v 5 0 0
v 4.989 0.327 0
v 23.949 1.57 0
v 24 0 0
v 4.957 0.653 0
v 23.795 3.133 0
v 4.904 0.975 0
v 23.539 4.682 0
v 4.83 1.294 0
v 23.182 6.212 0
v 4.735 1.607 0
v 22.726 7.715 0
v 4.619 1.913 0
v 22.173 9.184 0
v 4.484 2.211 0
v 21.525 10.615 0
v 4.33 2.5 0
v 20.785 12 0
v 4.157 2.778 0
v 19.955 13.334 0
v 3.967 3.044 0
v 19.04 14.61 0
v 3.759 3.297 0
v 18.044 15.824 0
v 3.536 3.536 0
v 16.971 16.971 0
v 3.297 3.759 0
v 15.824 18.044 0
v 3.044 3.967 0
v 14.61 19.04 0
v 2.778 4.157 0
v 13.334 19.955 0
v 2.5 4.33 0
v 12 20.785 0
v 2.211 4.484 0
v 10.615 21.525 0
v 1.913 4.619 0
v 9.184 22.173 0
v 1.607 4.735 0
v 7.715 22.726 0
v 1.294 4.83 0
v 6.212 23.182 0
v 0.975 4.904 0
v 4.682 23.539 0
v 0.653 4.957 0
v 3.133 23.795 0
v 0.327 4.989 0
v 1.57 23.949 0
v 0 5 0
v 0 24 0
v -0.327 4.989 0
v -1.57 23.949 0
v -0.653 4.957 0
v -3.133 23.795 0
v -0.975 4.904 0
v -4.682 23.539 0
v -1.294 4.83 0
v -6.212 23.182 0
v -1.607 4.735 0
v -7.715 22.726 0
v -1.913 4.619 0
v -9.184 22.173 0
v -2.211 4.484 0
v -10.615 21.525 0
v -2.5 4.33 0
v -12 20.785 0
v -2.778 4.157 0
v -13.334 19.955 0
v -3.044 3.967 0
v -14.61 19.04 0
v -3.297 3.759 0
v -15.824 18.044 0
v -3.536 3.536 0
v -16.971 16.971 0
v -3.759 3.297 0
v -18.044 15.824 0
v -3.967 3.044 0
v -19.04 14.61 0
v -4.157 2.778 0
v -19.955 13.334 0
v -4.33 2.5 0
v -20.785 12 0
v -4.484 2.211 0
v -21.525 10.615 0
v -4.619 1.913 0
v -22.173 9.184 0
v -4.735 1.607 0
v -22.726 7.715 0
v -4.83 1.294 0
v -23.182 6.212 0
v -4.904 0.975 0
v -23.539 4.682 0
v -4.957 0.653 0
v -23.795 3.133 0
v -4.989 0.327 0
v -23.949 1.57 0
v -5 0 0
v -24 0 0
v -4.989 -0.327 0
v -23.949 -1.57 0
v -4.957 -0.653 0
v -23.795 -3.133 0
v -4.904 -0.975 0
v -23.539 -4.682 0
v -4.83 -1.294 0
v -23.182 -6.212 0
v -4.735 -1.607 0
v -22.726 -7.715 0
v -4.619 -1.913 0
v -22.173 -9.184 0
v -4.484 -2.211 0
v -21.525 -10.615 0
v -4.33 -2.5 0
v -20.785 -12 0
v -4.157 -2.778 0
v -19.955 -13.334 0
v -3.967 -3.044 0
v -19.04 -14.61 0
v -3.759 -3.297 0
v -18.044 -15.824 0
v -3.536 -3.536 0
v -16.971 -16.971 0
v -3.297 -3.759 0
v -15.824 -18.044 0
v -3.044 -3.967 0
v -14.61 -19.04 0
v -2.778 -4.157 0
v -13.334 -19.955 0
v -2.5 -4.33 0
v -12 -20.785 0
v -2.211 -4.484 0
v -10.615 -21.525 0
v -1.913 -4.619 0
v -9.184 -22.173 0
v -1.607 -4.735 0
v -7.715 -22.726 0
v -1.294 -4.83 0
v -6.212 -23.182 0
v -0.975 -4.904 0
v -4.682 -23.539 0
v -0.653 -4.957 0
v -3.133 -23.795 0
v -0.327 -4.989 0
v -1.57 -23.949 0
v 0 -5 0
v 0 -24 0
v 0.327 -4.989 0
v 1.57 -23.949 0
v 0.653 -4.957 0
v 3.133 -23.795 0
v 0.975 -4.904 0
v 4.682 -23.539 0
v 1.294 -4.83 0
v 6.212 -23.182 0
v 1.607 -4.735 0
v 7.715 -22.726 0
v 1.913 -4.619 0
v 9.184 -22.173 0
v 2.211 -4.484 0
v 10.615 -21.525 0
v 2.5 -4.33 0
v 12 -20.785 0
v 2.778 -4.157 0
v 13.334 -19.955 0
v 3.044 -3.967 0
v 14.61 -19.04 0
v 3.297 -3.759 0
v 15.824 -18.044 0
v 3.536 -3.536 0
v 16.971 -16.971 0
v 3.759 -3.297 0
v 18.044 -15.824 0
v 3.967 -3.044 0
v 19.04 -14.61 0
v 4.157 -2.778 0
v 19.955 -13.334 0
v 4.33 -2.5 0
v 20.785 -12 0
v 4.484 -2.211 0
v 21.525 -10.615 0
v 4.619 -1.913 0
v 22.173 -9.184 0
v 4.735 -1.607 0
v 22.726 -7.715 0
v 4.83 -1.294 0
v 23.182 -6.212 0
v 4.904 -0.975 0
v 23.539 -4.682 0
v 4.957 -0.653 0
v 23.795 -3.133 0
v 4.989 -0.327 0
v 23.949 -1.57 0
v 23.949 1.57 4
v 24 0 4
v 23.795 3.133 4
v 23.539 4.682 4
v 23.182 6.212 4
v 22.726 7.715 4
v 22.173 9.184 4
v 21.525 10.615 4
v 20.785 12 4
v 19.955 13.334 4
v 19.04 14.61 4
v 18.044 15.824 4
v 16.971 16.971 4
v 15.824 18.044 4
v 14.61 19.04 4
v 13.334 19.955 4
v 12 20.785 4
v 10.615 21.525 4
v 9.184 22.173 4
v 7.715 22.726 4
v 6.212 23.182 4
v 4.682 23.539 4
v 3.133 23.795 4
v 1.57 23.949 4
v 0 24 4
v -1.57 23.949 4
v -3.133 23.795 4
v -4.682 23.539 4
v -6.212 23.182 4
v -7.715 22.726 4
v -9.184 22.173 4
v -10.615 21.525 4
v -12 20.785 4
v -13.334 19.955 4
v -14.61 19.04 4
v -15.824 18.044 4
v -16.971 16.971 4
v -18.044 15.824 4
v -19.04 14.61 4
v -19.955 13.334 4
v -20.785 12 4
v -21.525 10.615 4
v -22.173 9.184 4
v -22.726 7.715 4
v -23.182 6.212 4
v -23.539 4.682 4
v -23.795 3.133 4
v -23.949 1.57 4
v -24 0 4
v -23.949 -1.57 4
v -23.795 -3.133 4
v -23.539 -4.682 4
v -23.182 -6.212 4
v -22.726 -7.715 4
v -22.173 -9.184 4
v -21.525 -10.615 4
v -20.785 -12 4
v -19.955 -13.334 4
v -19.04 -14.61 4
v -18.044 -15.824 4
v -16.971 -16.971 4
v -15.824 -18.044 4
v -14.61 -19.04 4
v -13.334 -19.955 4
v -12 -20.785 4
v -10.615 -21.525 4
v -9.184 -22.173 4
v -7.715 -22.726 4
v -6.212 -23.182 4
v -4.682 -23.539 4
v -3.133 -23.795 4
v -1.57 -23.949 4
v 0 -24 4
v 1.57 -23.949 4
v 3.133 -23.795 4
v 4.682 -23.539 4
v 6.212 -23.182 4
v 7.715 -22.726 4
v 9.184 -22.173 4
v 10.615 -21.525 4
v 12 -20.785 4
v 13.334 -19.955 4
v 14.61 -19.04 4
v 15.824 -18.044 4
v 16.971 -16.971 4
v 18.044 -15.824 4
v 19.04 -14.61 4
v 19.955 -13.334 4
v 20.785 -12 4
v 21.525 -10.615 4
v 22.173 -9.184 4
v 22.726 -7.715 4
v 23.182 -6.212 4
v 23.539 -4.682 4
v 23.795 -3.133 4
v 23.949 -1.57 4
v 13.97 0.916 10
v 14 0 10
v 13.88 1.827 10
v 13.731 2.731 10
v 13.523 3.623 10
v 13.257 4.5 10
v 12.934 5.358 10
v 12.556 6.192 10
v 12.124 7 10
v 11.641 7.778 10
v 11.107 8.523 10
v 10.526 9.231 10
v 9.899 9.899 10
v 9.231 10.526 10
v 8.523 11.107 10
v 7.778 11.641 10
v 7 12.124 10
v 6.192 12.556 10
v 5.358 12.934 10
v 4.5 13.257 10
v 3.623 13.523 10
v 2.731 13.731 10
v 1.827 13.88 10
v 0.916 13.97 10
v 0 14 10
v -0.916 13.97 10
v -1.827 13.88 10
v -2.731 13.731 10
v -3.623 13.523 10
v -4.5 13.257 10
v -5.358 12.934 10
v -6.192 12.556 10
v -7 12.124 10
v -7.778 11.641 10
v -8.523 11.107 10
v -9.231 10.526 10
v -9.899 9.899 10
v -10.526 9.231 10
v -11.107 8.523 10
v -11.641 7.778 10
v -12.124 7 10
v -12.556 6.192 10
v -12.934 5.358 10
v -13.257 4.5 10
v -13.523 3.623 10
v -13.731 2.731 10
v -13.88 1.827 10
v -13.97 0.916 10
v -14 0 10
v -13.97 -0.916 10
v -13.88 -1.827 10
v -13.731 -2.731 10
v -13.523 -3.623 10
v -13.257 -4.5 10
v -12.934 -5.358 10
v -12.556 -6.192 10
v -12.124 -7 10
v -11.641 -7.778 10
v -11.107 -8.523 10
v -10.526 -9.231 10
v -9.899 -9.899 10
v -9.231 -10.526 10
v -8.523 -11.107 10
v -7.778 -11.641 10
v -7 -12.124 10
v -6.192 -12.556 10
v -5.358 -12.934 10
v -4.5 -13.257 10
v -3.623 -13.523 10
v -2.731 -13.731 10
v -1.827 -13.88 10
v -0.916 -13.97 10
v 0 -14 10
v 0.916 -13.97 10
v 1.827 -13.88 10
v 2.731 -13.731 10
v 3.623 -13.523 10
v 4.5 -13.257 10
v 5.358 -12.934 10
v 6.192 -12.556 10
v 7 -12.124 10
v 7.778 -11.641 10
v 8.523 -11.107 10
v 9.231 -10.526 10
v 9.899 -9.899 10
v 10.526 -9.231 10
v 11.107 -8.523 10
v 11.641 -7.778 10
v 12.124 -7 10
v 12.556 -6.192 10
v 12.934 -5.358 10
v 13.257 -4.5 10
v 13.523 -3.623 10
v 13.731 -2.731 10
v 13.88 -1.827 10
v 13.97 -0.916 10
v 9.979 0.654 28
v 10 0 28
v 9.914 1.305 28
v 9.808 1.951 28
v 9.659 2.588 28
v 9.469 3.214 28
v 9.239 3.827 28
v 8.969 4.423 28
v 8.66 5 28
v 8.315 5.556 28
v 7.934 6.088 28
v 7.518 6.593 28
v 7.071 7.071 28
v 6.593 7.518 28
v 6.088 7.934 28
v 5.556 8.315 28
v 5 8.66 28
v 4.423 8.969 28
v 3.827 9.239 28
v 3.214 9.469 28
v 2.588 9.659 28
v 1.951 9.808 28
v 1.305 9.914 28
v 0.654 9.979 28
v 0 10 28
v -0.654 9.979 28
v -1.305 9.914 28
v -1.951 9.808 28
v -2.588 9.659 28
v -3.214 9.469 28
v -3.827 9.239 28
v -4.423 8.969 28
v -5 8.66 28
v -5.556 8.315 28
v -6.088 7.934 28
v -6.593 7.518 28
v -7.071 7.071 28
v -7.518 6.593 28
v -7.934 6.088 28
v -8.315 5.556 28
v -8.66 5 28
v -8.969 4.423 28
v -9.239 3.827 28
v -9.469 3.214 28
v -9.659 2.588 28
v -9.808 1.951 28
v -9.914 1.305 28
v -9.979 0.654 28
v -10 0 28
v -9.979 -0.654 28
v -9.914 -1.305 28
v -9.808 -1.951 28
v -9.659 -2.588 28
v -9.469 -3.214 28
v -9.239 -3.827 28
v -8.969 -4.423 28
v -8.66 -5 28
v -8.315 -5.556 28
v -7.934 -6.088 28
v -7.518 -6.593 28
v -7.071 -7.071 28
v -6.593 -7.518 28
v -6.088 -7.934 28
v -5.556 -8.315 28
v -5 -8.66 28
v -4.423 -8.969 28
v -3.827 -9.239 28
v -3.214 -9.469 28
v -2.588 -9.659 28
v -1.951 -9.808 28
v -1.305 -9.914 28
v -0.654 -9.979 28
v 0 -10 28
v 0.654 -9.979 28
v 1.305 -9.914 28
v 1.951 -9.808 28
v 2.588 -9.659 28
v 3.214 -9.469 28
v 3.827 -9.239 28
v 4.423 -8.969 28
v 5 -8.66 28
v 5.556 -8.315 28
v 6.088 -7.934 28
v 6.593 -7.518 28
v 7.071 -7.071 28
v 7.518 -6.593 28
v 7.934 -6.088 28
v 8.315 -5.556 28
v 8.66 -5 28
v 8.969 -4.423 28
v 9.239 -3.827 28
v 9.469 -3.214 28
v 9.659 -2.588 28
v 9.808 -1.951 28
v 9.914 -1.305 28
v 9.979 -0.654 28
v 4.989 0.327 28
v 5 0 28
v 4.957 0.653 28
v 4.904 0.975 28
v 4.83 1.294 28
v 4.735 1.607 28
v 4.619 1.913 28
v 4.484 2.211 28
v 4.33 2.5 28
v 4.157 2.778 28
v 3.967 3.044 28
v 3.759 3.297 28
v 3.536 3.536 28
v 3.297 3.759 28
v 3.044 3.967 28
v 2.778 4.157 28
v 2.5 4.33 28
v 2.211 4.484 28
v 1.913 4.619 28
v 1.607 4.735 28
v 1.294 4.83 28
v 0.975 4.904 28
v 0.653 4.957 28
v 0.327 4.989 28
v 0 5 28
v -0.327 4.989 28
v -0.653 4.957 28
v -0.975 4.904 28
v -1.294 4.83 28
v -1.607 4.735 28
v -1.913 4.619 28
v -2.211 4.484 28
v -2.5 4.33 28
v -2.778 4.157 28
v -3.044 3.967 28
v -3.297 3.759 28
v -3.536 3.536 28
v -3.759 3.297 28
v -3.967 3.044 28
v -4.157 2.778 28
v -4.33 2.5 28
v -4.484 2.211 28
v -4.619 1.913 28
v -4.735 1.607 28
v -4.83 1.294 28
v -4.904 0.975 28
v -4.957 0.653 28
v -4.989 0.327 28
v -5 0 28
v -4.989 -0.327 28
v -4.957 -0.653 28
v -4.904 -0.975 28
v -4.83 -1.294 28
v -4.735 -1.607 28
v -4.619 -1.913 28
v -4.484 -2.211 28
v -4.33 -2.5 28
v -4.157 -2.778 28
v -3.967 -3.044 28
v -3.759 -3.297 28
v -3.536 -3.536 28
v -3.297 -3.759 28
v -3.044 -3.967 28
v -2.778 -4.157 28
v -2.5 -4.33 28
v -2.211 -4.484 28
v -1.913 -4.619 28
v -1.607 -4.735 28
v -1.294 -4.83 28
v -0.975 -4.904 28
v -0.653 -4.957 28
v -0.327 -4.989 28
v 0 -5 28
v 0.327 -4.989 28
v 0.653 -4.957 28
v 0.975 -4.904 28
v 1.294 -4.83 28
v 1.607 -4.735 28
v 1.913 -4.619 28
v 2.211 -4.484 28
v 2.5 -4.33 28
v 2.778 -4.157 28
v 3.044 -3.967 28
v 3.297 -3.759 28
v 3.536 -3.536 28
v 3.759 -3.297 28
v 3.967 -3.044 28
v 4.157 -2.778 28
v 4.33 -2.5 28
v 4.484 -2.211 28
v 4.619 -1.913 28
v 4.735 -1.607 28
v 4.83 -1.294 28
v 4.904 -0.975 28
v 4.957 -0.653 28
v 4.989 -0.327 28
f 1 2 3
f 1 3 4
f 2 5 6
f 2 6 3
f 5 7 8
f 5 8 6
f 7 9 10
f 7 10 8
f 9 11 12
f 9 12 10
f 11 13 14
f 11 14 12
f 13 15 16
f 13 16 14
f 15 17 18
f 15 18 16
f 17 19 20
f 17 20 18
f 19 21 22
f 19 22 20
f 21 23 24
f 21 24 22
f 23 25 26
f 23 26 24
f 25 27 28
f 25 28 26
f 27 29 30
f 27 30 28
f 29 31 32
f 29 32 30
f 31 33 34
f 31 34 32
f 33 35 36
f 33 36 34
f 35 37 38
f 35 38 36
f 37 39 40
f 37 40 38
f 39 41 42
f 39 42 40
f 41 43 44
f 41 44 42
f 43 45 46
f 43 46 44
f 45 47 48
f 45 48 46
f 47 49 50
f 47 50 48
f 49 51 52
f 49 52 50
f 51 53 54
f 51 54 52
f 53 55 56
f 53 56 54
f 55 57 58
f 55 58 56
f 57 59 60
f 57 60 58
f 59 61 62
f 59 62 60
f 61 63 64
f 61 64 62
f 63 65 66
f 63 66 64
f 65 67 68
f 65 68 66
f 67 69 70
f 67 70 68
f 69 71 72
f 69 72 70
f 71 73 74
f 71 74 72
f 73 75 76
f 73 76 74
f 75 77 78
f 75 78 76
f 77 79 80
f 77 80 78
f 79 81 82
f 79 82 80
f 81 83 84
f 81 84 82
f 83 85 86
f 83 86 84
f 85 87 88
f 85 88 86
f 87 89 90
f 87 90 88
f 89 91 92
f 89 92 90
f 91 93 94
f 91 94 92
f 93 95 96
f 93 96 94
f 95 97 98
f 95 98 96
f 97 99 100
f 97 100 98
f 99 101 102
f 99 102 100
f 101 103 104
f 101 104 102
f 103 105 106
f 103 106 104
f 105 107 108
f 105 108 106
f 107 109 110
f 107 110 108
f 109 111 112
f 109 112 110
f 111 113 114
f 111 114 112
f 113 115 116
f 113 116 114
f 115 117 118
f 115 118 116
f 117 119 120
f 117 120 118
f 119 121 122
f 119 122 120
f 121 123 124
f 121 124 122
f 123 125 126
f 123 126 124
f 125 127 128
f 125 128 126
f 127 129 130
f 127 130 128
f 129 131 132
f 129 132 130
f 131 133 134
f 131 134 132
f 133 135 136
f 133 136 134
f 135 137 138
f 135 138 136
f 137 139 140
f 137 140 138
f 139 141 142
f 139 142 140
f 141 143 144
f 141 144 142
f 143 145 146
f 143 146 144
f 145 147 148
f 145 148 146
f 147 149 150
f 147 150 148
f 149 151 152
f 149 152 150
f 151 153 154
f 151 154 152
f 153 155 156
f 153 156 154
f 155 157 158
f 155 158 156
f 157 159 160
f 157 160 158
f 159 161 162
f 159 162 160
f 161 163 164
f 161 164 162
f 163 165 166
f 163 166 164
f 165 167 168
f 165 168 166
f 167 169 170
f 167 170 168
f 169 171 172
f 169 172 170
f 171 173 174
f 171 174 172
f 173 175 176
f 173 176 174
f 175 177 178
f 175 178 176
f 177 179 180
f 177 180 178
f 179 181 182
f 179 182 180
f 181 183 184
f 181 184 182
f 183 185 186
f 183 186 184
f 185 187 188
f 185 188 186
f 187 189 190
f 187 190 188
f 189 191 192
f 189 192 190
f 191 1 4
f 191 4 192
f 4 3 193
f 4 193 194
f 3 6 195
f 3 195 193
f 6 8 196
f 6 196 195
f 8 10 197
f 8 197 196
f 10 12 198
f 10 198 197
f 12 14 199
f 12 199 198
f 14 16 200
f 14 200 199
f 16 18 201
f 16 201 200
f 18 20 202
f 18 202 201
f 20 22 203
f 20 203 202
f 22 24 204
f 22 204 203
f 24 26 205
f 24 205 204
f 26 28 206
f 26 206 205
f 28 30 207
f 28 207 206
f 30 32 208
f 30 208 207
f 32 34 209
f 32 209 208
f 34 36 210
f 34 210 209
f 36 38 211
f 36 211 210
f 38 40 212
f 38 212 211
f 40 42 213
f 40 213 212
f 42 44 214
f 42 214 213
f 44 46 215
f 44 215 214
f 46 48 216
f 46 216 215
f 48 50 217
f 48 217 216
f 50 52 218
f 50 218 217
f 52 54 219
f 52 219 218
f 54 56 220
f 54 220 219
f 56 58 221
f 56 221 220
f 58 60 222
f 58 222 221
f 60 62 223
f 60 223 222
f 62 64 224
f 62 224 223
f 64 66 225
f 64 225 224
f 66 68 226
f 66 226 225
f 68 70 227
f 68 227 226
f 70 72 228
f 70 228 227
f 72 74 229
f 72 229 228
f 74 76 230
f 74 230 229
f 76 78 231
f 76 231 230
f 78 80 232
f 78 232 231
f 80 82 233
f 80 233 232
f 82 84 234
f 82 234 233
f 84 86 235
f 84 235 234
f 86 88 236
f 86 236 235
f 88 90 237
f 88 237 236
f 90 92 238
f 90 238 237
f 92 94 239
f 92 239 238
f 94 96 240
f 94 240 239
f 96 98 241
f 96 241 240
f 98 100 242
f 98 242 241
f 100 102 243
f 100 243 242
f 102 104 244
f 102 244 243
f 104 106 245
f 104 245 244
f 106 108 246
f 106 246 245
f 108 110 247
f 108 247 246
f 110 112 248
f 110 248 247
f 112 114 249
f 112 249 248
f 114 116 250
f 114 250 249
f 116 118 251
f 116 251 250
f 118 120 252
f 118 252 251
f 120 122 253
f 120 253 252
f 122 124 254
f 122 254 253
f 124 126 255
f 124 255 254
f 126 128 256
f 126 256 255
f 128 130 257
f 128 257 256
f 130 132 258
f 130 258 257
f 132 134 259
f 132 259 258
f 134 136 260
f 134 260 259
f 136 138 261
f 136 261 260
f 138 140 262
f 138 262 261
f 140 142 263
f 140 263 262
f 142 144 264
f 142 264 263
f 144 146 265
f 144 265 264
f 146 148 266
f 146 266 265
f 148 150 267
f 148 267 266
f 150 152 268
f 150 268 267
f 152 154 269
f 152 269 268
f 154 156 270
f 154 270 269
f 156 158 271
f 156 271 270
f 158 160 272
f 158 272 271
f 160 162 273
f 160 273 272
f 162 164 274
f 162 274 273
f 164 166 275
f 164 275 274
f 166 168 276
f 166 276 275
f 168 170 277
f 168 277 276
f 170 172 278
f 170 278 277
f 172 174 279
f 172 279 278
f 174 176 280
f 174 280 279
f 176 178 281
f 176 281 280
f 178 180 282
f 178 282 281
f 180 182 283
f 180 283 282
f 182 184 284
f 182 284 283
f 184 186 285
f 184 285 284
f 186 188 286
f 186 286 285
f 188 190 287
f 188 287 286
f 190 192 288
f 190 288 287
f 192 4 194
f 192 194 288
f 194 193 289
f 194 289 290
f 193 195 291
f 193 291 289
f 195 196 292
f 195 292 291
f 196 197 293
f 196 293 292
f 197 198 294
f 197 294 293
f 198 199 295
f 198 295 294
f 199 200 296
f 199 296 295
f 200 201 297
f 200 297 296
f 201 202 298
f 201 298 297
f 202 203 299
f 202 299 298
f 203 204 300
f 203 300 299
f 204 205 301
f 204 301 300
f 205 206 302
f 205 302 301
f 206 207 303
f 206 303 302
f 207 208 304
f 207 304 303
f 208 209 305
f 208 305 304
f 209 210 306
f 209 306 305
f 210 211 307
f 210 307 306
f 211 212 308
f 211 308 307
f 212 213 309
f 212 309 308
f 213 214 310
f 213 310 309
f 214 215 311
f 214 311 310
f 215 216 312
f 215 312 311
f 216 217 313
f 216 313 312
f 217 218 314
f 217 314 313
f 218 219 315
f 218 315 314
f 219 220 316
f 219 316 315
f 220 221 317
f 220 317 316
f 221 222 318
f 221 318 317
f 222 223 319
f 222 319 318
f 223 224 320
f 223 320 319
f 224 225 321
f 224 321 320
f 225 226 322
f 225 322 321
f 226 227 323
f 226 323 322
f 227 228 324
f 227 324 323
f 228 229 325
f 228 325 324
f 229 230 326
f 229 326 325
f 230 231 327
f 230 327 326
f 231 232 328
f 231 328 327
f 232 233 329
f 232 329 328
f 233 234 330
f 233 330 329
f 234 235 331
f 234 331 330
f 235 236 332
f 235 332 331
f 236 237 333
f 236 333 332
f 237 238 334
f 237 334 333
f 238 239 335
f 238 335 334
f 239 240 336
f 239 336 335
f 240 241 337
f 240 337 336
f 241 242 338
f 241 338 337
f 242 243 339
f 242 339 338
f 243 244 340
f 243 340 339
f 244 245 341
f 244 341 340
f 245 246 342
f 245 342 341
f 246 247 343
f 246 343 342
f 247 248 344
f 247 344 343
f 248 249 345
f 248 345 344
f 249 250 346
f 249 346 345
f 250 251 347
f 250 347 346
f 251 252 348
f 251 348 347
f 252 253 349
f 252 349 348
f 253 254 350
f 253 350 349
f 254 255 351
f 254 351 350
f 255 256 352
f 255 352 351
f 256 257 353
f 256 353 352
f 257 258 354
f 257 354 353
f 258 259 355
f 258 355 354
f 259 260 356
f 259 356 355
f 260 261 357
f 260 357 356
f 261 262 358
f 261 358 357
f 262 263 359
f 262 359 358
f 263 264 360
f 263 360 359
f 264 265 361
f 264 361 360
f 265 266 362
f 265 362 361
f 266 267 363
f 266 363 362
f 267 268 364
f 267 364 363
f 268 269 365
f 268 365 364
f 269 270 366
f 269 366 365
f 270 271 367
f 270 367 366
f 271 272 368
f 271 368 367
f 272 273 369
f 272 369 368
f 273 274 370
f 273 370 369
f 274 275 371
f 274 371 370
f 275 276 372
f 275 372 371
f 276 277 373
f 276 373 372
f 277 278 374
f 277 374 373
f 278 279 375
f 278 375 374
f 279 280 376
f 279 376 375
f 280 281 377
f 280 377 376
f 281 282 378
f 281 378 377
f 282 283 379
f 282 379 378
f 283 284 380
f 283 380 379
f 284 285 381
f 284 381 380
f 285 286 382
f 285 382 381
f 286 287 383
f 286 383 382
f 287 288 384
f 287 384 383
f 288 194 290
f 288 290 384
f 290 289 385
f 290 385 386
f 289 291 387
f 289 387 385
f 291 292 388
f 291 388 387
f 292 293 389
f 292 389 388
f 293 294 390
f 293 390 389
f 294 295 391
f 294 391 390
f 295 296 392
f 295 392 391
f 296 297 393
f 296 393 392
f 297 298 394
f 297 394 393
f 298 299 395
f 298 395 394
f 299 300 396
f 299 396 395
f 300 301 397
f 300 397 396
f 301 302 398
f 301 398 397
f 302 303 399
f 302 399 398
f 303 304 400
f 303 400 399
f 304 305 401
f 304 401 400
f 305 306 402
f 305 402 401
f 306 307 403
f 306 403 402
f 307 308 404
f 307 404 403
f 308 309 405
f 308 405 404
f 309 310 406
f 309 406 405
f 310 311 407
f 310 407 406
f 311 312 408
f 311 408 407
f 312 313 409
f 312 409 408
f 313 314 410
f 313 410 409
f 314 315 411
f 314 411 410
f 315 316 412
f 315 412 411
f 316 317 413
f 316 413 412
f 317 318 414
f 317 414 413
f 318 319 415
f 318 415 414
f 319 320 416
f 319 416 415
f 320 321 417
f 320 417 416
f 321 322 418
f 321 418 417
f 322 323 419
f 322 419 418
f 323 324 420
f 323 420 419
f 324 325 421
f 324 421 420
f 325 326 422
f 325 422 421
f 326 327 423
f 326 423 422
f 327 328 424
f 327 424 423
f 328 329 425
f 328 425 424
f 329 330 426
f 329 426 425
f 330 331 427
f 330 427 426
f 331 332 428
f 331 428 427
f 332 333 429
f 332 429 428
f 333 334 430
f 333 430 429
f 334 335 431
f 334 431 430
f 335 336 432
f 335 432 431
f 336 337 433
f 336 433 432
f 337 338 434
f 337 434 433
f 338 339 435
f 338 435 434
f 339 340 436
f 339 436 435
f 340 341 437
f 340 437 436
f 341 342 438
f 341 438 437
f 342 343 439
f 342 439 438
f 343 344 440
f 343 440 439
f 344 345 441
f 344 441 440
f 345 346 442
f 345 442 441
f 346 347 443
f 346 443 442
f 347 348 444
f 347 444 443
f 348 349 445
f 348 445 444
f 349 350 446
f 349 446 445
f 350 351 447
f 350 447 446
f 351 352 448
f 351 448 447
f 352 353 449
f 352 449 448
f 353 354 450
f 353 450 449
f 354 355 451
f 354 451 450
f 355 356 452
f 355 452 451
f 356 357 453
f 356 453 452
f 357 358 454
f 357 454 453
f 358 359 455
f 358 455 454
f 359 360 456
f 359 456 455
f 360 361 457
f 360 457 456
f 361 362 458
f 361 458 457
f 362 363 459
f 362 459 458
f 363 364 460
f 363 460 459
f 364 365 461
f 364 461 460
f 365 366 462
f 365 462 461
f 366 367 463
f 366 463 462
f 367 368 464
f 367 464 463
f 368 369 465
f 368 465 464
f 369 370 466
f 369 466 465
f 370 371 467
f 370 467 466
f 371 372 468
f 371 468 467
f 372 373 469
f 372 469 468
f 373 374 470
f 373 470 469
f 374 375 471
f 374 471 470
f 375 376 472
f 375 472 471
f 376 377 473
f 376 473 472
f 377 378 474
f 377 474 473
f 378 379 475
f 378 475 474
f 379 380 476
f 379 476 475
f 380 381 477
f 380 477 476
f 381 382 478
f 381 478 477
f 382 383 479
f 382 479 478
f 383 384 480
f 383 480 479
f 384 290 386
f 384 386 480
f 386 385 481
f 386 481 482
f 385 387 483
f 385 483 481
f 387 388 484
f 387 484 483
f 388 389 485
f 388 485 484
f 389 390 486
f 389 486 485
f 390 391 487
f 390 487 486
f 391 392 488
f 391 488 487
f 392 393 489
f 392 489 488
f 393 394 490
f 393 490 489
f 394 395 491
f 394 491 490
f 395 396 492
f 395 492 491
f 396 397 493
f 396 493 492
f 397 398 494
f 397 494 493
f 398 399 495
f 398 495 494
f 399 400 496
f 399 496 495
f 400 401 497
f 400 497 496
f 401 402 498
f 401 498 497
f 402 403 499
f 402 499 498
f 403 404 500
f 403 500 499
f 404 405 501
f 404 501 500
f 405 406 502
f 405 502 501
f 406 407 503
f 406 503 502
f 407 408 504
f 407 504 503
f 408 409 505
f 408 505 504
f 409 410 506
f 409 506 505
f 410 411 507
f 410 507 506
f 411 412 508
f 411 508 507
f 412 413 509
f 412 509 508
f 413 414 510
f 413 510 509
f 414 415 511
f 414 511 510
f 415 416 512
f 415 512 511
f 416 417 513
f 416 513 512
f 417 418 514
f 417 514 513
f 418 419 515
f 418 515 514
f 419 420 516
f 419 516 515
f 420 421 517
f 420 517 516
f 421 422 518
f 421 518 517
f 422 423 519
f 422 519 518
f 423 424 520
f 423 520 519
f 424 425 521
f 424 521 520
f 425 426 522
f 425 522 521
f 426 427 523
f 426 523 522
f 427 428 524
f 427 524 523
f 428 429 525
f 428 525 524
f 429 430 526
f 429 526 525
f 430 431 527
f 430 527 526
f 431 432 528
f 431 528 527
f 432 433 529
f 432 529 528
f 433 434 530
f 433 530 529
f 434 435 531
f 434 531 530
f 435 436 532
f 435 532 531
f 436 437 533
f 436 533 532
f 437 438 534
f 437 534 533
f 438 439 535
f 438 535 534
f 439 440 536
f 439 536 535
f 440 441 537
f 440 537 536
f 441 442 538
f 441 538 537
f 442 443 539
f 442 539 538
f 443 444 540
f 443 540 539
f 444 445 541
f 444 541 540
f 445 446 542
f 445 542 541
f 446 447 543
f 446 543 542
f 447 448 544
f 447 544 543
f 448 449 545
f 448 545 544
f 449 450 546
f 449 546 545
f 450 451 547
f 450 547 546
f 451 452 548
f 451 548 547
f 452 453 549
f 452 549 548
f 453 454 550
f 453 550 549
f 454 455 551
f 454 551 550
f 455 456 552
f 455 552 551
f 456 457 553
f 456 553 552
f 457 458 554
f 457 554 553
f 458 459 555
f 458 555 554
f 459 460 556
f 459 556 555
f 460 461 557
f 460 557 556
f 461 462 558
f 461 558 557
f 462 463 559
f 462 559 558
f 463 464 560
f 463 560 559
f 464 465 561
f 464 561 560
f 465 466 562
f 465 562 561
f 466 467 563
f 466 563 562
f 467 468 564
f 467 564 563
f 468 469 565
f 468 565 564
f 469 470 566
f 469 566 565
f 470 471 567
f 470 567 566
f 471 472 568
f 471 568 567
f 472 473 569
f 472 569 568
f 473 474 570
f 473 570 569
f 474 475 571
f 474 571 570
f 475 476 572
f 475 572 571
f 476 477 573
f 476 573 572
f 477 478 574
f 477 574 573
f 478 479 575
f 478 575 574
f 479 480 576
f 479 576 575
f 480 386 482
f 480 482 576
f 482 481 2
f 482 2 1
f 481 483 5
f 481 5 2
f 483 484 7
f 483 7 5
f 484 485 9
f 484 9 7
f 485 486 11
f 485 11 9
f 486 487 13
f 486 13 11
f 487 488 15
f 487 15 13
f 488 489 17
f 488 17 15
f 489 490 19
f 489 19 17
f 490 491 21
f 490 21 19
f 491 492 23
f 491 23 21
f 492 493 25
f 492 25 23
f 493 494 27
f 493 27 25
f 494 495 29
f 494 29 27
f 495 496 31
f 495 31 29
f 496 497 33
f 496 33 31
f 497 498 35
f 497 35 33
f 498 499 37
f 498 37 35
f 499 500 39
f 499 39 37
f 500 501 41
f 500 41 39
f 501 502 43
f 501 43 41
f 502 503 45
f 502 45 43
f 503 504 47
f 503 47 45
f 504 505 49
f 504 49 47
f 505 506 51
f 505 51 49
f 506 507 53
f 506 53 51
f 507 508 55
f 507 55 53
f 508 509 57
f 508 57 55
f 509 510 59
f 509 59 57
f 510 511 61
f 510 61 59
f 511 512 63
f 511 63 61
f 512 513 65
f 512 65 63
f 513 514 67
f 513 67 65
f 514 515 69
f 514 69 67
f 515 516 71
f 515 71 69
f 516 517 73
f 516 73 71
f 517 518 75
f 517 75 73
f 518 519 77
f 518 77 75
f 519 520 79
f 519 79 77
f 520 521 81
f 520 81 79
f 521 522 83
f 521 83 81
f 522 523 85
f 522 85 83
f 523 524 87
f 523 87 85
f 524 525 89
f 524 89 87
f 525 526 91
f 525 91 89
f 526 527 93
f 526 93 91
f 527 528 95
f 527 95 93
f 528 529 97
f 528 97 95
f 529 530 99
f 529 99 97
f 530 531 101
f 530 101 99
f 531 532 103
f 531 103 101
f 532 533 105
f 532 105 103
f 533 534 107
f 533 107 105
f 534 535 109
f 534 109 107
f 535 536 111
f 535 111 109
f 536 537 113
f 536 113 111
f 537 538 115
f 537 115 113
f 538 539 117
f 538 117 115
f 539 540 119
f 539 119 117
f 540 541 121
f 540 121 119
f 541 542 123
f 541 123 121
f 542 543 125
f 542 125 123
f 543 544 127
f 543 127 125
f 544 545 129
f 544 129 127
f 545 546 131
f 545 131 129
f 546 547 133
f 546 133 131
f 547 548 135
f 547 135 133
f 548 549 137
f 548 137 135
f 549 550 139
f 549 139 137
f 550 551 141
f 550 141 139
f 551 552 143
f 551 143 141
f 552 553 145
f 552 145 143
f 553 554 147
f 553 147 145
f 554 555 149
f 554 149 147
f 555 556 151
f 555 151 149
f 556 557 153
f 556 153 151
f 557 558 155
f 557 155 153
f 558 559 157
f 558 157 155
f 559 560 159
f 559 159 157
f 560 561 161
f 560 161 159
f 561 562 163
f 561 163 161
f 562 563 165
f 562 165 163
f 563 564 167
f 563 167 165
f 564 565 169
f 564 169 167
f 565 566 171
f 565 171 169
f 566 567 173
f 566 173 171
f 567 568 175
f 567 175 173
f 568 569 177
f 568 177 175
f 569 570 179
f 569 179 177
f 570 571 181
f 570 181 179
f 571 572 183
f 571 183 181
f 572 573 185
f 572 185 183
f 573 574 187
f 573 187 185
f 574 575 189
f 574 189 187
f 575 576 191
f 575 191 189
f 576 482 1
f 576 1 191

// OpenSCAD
// Original MechIntel educational model. CC0-1.0. Units: mm.
// Not a standardized or load-rated component.
$fn=96;
// Section points: [radius, height], mm. Edit to change the profile.
section=[[5, 0], [24, 0], [24, 4], [14, 10], [10, 28], [5, 28]];
rotate_extrude($fn=96) polygon(points=section);
